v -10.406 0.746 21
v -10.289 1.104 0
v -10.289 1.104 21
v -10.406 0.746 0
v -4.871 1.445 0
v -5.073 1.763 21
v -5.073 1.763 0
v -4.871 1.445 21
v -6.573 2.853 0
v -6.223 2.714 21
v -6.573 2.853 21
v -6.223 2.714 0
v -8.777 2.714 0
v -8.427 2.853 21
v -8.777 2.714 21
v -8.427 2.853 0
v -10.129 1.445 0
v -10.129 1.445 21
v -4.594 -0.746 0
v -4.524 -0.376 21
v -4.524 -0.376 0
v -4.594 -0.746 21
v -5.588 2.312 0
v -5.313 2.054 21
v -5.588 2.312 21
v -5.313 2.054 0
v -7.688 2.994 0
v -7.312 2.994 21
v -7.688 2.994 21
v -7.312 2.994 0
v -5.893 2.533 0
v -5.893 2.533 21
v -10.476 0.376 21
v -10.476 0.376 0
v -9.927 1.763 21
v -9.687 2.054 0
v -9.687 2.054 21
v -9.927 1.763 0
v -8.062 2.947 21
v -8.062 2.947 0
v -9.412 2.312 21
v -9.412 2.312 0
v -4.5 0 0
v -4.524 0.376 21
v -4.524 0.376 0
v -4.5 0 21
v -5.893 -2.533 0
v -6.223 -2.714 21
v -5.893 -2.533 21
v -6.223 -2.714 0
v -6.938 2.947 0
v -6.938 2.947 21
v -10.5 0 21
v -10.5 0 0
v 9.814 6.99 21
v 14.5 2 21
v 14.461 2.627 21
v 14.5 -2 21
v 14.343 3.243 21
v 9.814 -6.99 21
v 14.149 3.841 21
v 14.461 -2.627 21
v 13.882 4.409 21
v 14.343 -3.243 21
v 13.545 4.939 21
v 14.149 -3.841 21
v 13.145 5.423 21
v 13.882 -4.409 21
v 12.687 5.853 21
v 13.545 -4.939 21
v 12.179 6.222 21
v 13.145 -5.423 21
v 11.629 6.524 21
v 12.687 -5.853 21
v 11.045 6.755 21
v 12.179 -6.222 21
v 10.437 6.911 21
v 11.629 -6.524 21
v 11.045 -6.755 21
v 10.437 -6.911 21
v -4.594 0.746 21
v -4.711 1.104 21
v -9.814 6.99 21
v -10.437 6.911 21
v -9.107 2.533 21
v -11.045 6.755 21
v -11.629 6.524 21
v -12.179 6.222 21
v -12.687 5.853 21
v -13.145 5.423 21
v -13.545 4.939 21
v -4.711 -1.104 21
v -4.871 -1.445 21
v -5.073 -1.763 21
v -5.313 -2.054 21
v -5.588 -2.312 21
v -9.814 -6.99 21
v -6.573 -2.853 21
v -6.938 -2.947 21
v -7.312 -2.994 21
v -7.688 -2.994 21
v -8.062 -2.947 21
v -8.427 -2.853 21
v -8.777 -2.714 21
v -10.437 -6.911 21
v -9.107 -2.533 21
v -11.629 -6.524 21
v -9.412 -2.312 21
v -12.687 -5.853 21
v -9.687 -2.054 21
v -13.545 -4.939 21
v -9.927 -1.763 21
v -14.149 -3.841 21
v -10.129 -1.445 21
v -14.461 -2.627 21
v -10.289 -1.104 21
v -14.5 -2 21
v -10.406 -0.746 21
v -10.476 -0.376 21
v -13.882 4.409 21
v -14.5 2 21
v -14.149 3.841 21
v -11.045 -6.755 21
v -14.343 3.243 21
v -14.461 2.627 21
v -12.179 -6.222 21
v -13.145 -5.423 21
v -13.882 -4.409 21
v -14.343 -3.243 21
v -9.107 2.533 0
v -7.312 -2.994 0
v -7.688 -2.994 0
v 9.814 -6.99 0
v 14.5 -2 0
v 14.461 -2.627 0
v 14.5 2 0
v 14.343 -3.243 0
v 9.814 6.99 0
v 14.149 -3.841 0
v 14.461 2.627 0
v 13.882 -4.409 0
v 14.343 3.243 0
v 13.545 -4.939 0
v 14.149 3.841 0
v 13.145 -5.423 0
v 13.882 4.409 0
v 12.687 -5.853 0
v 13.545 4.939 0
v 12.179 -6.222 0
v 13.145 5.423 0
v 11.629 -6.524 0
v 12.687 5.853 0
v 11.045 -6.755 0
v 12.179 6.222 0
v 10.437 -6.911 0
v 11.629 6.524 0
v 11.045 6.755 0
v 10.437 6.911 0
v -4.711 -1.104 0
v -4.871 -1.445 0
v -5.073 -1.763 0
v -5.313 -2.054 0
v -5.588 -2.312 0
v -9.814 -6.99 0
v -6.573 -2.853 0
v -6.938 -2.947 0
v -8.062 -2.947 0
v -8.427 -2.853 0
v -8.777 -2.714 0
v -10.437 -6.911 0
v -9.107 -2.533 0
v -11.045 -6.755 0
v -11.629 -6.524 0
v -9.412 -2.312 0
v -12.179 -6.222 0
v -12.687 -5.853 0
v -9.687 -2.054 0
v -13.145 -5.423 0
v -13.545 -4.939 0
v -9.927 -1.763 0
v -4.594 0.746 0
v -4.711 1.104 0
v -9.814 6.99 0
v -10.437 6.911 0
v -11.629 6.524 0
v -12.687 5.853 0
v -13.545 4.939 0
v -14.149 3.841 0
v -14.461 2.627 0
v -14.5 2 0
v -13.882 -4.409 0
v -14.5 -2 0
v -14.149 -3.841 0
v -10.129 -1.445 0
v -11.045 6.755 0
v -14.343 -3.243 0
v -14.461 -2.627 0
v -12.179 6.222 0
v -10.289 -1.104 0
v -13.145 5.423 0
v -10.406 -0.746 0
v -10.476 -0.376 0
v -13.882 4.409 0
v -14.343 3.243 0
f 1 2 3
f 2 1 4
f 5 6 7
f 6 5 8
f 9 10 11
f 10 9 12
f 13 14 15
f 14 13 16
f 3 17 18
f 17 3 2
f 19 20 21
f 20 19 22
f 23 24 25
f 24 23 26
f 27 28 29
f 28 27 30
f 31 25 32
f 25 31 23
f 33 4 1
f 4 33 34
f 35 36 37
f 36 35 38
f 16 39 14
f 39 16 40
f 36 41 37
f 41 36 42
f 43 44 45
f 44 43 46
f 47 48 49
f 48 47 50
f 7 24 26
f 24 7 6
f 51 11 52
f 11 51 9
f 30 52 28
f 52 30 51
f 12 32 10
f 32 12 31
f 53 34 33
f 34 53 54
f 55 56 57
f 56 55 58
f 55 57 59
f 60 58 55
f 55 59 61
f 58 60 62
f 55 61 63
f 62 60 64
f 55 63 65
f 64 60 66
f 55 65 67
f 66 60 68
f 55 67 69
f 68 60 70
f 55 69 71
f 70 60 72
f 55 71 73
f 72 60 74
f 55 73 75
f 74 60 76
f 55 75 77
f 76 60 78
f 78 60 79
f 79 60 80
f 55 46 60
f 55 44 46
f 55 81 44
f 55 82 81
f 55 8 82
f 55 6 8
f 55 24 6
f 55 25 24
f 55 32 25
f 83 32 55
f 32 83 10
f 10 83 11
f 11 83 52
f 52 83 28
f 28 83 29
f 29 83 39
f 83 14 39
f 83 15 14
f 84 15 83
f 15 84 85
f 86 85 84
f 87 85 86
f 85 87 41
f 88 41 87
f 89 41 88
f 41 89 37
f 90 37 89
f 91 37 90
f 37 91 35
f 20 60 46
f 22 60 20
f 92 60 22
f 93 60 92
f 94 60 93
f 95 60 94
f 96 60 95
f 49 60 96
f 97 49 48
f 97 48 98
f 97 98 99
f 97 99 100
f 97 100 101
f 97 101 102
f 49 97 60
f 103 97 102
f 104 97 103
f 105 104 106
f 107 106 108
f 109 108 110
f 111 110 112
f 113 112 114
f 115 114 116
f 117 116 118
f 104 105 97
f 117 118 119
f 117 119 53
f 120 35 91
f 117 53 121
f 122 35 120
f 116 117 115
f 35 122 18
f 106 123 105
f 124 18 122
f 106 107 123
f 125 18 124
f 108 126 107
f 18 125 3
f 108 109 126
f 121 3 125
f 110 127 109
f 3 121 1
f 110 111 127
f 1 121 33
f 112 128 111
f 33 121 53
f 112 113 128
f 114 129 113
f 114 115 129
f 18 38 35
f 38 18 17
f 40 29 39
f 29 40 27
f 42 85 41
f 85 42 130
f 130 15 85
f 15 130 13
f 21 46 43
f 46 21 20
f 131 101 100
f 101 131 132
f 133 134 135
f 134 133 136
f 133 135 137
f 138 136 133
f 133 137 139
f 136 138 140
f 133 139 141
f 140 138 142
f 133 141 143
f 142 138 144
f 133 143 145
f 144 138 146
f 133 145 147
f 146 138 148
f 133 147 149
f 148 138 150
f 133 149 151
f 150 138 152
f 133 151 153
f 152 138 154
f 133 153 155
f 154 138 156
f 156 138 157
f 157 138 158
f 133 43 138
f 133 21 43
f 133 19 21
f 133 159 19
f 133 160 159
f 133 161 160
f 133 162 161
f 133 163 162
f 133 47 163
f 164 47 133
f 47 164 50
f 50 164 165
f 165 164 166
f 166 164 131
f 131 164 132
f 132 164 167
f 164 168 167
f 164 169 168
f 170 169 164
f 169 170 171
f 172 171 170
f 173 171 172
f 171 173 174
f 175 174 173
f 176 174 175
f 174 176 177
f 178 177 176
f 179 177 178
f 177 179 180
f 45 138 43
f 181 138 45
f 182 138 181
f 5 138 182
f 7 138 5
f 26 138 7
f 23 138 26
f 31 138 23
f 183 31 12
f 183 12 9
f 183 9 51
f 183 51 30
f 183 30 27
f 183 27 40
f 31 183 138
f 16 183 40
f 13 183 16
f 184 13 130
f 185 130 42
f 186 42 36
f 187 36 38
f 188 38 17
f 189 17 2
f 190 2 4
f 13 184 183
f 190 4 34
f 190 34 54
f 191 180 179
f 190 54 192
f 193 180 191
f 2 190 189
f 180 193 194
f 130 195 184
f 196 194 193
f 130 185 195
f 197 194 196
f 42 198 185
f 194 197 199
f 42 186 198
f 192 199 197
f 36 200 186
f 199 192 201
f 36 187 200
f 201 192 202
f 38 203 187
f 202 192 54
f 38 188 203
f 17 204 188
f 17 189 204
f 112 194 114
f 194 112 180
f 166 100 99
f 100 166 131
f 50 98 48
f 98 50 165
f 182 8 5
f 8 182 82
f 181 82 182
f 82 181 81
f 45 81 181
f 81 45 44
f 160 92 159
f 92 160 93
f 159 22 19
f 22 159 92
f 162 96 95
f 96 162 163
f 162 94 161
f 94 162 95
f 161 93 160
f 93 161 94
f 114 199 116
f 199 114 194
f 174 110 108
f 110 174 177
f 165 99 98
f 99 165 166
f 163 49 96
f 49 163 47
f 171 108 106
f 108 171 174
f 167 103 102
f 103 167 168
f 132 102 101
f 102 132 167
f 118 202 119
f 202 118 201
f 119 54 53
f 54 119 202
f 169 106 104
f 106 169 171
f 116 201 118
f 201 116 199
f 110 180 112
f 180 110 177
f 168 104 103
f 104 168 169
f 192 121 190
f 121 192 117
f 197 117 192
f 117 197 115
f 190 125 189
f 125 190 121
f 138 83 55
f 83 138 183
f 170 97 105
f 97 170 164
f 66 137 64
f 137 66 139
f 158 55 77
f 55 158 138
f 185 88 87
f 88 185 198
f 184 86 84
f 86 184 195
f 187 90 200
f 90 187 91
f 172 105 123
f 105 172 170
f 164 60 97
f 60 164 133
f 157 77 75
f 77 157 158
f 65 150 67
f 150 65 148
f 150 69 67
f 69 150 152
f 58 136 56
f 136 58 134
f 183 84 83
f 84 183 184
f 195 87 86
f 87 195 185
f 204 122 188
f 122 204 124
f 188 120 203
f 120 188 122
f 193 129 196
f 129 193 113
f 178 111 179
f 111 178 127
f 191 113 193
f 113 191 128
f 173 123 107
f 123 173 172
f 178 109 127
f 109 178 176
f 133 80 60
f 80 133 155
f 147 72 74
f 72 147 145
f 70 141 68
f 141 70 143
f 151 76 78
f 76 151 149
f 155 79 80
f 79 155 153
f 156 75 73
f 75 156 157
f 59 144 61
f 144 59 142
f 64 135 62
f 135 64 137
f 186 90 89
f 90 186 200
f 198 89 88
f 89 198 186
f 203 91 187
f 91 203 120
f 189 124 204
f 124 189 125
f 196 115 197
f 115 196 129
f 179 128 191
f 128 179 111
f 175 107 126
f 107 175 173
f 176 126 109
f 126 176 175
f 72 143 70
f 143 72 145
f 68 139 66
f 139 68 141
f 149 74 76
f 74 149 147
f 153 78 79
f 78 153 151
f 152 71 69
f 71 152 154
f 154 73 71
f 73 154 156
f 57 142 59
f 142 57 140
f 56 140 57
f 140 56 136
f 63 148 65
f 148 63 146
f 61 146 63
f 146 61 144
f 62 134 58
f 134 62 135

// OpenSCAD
$fn = 50;


difference() {
	union() {
		hull() {
			translate(v = [-9.5000000000, 2.0000000000, 0]) {
				cylinder(h = 21, r = 5);
			}
			translate(v = [9.5000000000, 2.0000000000, 0]) {
				cylinder(h = 21, r = 5);
			}
			translate(v = [-9.5000000000, -2.0000000000, 0]) {
				cylinder(h = 21, r = 5);
			}
			translate(v = [9.5000000000, -2.0000000000, 0]) {
				cylinder(h = 21, r = 5);
			}
		}
	}
	union() {
		translate(v = [-7.5000000000, 0.0000000000, 0]) {
			cylinder(h = 21, r = 3.0000000000);
		}
		translate(v = [-7.5000000000, 0.0000000000, 0]) {
			cylinder(h = 21, r = 1.5000000000);
		}
		translate(v = [-7.5000000000, 0.0000000000, 0]) {
			cylinder(h = 21, r = 1.5000000000);
		}
		translate(v = [-7.5000000000, 0.0000000000, 0]) {
			cylinder(h = 21, r = 1.5000000000);
		}
	}
}
